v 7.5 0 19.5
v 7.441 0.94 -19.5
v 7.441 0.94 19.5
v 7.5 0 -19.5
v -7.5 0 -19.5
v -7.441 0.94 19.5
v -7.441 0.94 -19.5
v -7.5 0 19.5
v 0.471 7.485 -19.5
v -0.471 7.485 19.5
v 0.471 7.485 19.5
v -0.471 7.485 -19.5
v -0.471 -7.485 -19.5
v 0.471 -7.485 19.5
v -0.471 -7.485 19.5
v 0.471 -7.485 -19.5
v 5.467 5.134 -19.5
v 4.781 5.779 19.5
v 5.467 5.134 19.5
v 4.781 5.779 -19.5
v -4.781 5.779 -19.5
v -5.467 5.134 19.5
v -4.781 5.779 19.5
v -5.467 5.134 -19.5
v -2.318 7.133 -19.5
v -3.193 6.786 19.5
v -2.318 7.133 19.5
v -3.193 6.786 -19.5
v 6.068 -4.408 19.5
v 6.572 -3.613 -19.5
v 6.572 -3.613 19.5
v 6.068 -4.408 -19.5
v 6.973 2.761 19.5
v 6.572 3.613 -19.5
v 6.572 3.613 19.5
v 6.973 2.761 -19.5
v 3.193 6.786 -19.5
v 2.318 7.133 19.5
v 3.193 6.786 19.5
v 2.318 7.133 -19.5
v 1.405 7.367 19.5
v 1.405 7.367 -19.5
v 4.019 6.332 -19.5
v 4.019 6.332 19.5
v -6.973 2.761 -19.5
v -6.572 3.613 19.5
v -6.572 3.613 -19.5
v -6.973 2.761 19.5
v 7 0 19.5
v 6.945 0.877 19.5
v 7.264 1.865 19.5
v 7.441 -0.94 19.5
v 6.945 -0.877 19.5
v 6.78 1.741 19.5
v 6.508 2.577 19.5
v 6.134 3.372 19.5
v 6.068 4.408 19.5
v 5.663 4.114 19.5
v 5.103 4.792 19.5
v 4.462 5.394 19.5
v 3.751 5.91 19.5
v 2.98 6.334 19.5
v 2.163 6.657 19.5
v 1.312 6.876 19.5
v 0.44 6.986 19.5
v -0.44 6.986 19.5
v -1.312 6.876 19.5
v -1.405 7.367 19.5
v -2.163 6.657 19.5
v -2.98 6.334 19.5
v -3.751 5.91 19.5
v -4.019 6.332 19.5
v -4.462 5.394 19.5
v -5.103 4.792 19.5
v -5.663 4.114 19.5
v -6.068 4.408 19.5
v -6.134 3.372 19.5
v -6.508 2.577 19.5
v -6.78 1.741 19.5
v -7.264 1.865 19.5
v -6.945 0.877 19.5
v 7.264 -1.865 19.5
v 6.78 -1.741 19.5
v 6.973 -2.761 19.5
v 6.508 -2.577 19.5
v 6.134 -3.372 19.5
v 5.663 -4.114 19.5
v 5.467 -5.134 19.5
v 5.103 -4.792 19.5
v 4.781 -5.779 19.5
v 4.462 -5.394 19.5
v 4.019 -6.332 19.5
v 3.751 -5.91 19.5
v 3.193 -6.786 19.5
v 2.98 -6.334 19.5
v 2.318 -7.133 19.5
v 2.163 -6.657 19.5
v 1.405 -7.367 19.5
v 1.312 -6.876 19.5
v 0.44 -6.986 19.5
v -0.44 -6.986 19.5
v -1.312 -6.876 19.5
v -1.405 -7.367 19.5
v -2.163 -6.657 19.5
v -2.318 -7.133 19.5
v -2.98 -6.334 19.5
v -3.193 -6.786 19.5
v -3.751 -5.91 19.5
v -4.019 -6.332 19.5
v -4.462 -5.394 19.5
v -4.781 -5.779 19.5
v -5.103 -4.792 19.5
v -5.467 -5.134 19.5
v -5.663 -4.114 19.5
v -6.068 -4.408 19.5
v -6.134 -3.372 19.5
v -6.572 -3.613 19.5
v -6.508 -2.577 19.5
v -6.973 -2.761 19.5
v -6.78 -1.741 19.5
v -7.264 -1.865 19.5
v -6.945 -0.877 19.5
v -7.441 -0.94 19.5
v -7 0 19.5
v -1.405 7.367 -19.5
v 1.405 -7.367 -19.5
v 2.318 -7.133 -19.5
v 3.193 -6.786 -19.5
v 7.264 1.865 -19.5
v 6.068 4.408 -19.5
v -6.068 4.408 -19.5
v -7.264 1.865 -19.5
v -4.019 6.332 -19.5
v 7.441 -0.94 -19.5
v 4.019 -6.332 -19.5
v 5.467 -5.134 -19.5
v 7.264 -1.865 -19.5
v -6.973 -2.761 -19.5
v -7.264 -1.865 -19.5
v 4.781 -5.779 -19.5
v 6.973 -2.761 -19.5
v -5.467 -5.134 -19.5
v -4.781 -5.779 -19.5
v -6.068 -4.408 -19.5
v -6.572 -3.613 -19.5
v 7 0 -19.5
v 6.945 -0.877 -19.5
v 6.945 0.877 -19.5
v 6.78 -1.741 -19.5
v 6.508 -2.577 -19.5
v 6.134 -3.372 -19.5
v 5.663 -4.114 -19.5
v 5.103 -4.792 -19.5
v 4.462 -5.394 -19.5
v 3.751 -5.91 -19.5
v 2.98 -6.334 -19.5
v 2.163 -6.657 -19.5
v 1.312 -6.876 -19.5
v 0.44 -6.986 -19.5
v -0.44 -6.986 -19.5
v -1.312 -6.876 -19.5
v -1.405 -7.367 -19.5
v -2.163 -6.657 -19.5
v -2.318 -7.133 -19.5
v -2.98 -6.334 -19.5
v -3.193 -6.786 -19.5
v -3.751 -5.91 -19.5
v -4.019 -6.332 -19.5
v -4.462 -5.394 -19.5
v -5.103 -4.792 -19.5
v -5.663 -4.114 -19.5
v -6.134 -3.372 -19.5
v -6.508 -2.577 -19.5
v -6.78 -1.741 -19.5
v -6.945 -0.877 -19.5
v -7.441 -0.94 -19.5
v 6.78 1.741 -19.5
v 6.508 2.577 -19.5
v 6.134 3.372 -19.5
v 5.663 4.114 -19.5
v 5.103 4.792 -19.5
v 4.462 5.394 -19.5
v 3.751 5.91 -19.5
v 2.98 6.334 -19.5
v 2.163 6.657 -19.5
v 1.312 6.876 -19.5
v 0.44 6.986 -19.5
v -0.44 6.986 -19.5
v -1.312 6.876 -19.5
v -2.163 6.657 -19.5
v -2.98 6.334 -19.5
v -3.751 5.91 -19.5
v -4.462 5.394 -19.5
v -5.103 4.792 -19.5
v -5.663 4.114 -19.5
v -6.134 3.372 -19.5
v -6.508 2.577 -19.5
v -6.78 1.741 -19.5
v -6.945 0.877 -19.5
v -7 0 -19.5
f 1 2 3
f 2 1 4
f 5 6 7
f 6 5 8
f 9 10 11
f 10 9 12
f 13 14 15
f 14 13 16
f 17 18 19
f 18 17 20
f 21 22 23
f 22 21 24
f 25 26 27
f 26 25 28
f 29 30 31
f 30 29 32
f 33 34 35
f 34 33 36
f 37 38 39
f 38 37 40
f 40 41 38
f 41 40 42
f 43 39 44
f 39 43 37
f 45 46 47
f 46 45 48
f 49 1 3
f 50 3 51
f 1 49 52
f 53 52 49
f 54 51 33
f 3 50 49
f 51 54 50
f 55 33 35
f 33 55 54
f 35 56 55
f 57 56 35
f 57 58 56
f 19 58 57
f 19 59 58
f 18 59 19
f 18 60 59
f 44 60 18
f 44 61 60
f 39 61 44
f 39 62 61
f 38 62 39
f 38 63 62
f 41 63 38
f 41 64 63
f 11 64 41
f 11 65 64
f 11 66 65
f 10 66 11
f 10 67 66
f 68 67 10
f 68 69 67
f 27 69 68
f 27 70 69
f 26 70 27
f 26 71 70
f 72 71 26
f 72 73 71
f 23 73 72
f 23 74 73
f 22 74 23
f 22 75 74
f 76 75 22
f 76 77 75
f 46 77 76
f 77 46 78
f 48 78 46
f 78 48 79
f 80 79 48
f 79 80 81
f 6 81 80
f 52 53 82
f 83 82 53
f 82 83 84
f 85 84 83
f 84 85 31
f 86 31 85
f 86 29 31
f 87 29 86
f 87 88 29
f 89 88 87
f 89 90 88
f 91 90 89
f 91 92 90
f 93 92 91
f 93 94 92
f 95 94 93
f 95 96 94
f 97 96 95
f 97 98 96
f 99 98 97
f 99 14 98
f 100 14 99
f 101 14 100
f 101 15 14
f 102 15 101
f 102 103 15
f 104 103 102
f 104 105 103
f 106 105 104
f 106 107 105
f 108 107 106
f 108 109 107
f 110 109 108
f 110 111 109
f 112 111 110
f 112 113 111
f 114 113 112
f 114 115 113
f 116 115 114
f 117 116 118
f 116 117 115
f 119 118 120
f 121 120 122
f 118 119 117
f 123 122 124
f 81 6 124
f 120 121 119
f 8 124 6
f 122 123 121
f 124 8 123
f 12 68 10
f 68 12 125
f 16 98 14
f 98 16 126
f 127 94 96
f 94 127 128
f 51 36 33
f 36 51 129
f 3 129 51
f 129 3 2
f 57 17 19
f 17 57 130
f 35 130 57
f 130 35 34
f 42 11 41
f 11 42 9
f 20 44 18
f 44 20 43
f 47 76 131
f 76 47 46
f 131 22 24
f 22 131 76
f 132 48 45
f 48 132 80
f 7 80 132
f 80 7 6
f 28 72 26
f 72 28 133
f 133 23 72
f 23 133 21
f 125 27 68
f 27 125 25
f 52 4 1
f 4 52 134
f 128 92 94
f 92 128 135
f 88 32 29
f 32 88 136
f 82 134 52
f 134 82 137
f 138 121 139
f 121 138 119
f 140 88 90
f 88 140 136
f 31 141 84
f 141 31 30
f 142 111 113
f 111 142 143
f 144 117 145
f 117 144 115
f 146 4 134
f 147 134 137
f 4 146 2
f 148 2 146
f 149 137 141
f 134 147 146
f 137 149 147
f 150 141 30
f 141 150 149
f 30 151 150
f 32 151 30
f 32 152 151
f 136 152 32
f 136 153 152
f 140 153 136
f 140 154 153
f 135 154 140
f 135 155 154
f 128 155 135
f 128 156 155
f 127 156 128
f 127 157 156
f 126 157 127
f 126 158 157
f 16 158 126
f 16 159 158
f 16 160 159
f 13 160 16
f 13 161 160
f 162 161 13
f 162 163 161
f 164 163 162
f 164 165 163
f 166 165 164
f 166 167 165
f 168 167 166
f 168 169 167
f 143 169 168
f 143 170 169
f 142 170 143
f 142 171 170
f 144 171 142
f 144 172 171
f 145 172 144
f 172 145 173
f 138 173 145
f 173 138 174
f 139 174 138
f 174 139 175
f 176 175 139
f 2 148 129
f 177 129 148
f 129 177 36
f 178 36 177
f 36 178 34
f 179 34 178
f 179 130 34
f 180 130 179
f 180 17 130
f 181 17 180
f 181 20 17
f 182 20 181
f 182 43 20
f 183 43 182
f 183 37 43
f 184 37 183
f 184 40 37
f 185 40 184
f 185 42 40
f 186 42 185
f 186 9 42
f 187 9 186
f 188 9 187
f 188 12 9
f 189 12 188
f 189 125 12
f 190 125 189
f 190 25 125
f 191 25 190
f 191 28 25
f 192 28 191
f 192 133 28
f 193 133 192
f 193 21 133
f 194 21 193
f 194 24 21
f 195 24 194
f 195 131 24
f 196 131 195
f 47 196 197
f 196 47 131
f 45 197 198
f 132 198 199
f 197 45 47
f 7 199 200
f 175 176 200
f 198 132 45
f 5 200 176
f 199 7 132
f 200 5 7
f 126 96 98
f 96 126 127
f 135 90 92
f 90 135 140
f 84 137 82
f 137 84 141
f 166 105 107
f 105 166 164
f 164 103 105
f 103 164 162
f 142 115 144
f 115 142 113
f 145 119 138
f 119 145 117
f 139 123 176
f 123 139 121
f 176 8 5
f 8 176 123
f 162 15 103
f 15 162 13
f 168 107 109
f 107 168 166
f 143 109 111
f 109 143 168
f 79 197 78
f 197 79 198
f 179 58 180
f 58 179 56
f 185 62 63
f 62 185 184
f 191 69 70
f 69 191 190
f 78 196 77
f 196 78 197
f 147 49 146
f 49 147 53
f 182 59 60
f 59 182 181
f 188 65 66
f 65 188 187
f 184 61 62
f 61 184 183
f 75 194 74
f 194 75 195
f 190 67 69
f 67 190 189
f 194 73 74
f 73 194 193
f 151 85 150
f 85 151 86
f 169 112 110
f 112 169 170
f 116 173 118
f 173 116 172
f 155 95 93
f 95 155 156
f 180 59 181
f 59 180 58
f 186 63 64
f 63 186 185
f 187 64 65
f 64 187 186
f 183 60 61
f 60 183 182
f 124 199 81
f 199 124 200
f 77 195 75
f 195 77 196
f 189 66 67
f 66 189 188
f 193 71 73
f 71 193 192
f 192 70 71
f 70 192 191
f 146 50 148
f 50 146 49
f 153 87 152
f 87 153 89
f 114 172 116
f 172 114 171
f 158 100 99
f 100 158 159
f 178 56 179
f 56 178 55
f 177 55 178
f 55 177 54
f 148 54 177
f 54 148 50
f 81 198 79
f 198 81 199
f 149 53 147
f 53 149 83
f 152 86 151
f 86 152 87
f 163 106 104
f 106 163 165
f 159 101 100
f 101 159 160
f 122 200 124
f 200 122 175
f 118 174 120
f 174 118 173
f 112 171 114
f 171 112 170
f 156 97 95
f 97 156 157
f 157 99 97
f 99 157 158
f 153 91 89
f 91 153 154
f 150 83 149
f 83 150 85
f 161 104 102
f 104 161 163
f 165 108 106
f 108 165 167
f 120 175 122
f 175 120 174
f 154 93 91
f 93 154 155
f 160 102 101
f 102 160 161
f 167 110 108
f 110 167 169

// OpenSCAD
$fn = 50;


difference() {
	union() {
		translate(v = [0, 0, -19.5000000000]) {
			cylinder(h = 39, r = 7.5000000000);
		}
	}
	union() {
		translate(v = [0, 0, -100.0000000000]) {
			cylinder(h = 200, r = 7);
		}
	}
}
